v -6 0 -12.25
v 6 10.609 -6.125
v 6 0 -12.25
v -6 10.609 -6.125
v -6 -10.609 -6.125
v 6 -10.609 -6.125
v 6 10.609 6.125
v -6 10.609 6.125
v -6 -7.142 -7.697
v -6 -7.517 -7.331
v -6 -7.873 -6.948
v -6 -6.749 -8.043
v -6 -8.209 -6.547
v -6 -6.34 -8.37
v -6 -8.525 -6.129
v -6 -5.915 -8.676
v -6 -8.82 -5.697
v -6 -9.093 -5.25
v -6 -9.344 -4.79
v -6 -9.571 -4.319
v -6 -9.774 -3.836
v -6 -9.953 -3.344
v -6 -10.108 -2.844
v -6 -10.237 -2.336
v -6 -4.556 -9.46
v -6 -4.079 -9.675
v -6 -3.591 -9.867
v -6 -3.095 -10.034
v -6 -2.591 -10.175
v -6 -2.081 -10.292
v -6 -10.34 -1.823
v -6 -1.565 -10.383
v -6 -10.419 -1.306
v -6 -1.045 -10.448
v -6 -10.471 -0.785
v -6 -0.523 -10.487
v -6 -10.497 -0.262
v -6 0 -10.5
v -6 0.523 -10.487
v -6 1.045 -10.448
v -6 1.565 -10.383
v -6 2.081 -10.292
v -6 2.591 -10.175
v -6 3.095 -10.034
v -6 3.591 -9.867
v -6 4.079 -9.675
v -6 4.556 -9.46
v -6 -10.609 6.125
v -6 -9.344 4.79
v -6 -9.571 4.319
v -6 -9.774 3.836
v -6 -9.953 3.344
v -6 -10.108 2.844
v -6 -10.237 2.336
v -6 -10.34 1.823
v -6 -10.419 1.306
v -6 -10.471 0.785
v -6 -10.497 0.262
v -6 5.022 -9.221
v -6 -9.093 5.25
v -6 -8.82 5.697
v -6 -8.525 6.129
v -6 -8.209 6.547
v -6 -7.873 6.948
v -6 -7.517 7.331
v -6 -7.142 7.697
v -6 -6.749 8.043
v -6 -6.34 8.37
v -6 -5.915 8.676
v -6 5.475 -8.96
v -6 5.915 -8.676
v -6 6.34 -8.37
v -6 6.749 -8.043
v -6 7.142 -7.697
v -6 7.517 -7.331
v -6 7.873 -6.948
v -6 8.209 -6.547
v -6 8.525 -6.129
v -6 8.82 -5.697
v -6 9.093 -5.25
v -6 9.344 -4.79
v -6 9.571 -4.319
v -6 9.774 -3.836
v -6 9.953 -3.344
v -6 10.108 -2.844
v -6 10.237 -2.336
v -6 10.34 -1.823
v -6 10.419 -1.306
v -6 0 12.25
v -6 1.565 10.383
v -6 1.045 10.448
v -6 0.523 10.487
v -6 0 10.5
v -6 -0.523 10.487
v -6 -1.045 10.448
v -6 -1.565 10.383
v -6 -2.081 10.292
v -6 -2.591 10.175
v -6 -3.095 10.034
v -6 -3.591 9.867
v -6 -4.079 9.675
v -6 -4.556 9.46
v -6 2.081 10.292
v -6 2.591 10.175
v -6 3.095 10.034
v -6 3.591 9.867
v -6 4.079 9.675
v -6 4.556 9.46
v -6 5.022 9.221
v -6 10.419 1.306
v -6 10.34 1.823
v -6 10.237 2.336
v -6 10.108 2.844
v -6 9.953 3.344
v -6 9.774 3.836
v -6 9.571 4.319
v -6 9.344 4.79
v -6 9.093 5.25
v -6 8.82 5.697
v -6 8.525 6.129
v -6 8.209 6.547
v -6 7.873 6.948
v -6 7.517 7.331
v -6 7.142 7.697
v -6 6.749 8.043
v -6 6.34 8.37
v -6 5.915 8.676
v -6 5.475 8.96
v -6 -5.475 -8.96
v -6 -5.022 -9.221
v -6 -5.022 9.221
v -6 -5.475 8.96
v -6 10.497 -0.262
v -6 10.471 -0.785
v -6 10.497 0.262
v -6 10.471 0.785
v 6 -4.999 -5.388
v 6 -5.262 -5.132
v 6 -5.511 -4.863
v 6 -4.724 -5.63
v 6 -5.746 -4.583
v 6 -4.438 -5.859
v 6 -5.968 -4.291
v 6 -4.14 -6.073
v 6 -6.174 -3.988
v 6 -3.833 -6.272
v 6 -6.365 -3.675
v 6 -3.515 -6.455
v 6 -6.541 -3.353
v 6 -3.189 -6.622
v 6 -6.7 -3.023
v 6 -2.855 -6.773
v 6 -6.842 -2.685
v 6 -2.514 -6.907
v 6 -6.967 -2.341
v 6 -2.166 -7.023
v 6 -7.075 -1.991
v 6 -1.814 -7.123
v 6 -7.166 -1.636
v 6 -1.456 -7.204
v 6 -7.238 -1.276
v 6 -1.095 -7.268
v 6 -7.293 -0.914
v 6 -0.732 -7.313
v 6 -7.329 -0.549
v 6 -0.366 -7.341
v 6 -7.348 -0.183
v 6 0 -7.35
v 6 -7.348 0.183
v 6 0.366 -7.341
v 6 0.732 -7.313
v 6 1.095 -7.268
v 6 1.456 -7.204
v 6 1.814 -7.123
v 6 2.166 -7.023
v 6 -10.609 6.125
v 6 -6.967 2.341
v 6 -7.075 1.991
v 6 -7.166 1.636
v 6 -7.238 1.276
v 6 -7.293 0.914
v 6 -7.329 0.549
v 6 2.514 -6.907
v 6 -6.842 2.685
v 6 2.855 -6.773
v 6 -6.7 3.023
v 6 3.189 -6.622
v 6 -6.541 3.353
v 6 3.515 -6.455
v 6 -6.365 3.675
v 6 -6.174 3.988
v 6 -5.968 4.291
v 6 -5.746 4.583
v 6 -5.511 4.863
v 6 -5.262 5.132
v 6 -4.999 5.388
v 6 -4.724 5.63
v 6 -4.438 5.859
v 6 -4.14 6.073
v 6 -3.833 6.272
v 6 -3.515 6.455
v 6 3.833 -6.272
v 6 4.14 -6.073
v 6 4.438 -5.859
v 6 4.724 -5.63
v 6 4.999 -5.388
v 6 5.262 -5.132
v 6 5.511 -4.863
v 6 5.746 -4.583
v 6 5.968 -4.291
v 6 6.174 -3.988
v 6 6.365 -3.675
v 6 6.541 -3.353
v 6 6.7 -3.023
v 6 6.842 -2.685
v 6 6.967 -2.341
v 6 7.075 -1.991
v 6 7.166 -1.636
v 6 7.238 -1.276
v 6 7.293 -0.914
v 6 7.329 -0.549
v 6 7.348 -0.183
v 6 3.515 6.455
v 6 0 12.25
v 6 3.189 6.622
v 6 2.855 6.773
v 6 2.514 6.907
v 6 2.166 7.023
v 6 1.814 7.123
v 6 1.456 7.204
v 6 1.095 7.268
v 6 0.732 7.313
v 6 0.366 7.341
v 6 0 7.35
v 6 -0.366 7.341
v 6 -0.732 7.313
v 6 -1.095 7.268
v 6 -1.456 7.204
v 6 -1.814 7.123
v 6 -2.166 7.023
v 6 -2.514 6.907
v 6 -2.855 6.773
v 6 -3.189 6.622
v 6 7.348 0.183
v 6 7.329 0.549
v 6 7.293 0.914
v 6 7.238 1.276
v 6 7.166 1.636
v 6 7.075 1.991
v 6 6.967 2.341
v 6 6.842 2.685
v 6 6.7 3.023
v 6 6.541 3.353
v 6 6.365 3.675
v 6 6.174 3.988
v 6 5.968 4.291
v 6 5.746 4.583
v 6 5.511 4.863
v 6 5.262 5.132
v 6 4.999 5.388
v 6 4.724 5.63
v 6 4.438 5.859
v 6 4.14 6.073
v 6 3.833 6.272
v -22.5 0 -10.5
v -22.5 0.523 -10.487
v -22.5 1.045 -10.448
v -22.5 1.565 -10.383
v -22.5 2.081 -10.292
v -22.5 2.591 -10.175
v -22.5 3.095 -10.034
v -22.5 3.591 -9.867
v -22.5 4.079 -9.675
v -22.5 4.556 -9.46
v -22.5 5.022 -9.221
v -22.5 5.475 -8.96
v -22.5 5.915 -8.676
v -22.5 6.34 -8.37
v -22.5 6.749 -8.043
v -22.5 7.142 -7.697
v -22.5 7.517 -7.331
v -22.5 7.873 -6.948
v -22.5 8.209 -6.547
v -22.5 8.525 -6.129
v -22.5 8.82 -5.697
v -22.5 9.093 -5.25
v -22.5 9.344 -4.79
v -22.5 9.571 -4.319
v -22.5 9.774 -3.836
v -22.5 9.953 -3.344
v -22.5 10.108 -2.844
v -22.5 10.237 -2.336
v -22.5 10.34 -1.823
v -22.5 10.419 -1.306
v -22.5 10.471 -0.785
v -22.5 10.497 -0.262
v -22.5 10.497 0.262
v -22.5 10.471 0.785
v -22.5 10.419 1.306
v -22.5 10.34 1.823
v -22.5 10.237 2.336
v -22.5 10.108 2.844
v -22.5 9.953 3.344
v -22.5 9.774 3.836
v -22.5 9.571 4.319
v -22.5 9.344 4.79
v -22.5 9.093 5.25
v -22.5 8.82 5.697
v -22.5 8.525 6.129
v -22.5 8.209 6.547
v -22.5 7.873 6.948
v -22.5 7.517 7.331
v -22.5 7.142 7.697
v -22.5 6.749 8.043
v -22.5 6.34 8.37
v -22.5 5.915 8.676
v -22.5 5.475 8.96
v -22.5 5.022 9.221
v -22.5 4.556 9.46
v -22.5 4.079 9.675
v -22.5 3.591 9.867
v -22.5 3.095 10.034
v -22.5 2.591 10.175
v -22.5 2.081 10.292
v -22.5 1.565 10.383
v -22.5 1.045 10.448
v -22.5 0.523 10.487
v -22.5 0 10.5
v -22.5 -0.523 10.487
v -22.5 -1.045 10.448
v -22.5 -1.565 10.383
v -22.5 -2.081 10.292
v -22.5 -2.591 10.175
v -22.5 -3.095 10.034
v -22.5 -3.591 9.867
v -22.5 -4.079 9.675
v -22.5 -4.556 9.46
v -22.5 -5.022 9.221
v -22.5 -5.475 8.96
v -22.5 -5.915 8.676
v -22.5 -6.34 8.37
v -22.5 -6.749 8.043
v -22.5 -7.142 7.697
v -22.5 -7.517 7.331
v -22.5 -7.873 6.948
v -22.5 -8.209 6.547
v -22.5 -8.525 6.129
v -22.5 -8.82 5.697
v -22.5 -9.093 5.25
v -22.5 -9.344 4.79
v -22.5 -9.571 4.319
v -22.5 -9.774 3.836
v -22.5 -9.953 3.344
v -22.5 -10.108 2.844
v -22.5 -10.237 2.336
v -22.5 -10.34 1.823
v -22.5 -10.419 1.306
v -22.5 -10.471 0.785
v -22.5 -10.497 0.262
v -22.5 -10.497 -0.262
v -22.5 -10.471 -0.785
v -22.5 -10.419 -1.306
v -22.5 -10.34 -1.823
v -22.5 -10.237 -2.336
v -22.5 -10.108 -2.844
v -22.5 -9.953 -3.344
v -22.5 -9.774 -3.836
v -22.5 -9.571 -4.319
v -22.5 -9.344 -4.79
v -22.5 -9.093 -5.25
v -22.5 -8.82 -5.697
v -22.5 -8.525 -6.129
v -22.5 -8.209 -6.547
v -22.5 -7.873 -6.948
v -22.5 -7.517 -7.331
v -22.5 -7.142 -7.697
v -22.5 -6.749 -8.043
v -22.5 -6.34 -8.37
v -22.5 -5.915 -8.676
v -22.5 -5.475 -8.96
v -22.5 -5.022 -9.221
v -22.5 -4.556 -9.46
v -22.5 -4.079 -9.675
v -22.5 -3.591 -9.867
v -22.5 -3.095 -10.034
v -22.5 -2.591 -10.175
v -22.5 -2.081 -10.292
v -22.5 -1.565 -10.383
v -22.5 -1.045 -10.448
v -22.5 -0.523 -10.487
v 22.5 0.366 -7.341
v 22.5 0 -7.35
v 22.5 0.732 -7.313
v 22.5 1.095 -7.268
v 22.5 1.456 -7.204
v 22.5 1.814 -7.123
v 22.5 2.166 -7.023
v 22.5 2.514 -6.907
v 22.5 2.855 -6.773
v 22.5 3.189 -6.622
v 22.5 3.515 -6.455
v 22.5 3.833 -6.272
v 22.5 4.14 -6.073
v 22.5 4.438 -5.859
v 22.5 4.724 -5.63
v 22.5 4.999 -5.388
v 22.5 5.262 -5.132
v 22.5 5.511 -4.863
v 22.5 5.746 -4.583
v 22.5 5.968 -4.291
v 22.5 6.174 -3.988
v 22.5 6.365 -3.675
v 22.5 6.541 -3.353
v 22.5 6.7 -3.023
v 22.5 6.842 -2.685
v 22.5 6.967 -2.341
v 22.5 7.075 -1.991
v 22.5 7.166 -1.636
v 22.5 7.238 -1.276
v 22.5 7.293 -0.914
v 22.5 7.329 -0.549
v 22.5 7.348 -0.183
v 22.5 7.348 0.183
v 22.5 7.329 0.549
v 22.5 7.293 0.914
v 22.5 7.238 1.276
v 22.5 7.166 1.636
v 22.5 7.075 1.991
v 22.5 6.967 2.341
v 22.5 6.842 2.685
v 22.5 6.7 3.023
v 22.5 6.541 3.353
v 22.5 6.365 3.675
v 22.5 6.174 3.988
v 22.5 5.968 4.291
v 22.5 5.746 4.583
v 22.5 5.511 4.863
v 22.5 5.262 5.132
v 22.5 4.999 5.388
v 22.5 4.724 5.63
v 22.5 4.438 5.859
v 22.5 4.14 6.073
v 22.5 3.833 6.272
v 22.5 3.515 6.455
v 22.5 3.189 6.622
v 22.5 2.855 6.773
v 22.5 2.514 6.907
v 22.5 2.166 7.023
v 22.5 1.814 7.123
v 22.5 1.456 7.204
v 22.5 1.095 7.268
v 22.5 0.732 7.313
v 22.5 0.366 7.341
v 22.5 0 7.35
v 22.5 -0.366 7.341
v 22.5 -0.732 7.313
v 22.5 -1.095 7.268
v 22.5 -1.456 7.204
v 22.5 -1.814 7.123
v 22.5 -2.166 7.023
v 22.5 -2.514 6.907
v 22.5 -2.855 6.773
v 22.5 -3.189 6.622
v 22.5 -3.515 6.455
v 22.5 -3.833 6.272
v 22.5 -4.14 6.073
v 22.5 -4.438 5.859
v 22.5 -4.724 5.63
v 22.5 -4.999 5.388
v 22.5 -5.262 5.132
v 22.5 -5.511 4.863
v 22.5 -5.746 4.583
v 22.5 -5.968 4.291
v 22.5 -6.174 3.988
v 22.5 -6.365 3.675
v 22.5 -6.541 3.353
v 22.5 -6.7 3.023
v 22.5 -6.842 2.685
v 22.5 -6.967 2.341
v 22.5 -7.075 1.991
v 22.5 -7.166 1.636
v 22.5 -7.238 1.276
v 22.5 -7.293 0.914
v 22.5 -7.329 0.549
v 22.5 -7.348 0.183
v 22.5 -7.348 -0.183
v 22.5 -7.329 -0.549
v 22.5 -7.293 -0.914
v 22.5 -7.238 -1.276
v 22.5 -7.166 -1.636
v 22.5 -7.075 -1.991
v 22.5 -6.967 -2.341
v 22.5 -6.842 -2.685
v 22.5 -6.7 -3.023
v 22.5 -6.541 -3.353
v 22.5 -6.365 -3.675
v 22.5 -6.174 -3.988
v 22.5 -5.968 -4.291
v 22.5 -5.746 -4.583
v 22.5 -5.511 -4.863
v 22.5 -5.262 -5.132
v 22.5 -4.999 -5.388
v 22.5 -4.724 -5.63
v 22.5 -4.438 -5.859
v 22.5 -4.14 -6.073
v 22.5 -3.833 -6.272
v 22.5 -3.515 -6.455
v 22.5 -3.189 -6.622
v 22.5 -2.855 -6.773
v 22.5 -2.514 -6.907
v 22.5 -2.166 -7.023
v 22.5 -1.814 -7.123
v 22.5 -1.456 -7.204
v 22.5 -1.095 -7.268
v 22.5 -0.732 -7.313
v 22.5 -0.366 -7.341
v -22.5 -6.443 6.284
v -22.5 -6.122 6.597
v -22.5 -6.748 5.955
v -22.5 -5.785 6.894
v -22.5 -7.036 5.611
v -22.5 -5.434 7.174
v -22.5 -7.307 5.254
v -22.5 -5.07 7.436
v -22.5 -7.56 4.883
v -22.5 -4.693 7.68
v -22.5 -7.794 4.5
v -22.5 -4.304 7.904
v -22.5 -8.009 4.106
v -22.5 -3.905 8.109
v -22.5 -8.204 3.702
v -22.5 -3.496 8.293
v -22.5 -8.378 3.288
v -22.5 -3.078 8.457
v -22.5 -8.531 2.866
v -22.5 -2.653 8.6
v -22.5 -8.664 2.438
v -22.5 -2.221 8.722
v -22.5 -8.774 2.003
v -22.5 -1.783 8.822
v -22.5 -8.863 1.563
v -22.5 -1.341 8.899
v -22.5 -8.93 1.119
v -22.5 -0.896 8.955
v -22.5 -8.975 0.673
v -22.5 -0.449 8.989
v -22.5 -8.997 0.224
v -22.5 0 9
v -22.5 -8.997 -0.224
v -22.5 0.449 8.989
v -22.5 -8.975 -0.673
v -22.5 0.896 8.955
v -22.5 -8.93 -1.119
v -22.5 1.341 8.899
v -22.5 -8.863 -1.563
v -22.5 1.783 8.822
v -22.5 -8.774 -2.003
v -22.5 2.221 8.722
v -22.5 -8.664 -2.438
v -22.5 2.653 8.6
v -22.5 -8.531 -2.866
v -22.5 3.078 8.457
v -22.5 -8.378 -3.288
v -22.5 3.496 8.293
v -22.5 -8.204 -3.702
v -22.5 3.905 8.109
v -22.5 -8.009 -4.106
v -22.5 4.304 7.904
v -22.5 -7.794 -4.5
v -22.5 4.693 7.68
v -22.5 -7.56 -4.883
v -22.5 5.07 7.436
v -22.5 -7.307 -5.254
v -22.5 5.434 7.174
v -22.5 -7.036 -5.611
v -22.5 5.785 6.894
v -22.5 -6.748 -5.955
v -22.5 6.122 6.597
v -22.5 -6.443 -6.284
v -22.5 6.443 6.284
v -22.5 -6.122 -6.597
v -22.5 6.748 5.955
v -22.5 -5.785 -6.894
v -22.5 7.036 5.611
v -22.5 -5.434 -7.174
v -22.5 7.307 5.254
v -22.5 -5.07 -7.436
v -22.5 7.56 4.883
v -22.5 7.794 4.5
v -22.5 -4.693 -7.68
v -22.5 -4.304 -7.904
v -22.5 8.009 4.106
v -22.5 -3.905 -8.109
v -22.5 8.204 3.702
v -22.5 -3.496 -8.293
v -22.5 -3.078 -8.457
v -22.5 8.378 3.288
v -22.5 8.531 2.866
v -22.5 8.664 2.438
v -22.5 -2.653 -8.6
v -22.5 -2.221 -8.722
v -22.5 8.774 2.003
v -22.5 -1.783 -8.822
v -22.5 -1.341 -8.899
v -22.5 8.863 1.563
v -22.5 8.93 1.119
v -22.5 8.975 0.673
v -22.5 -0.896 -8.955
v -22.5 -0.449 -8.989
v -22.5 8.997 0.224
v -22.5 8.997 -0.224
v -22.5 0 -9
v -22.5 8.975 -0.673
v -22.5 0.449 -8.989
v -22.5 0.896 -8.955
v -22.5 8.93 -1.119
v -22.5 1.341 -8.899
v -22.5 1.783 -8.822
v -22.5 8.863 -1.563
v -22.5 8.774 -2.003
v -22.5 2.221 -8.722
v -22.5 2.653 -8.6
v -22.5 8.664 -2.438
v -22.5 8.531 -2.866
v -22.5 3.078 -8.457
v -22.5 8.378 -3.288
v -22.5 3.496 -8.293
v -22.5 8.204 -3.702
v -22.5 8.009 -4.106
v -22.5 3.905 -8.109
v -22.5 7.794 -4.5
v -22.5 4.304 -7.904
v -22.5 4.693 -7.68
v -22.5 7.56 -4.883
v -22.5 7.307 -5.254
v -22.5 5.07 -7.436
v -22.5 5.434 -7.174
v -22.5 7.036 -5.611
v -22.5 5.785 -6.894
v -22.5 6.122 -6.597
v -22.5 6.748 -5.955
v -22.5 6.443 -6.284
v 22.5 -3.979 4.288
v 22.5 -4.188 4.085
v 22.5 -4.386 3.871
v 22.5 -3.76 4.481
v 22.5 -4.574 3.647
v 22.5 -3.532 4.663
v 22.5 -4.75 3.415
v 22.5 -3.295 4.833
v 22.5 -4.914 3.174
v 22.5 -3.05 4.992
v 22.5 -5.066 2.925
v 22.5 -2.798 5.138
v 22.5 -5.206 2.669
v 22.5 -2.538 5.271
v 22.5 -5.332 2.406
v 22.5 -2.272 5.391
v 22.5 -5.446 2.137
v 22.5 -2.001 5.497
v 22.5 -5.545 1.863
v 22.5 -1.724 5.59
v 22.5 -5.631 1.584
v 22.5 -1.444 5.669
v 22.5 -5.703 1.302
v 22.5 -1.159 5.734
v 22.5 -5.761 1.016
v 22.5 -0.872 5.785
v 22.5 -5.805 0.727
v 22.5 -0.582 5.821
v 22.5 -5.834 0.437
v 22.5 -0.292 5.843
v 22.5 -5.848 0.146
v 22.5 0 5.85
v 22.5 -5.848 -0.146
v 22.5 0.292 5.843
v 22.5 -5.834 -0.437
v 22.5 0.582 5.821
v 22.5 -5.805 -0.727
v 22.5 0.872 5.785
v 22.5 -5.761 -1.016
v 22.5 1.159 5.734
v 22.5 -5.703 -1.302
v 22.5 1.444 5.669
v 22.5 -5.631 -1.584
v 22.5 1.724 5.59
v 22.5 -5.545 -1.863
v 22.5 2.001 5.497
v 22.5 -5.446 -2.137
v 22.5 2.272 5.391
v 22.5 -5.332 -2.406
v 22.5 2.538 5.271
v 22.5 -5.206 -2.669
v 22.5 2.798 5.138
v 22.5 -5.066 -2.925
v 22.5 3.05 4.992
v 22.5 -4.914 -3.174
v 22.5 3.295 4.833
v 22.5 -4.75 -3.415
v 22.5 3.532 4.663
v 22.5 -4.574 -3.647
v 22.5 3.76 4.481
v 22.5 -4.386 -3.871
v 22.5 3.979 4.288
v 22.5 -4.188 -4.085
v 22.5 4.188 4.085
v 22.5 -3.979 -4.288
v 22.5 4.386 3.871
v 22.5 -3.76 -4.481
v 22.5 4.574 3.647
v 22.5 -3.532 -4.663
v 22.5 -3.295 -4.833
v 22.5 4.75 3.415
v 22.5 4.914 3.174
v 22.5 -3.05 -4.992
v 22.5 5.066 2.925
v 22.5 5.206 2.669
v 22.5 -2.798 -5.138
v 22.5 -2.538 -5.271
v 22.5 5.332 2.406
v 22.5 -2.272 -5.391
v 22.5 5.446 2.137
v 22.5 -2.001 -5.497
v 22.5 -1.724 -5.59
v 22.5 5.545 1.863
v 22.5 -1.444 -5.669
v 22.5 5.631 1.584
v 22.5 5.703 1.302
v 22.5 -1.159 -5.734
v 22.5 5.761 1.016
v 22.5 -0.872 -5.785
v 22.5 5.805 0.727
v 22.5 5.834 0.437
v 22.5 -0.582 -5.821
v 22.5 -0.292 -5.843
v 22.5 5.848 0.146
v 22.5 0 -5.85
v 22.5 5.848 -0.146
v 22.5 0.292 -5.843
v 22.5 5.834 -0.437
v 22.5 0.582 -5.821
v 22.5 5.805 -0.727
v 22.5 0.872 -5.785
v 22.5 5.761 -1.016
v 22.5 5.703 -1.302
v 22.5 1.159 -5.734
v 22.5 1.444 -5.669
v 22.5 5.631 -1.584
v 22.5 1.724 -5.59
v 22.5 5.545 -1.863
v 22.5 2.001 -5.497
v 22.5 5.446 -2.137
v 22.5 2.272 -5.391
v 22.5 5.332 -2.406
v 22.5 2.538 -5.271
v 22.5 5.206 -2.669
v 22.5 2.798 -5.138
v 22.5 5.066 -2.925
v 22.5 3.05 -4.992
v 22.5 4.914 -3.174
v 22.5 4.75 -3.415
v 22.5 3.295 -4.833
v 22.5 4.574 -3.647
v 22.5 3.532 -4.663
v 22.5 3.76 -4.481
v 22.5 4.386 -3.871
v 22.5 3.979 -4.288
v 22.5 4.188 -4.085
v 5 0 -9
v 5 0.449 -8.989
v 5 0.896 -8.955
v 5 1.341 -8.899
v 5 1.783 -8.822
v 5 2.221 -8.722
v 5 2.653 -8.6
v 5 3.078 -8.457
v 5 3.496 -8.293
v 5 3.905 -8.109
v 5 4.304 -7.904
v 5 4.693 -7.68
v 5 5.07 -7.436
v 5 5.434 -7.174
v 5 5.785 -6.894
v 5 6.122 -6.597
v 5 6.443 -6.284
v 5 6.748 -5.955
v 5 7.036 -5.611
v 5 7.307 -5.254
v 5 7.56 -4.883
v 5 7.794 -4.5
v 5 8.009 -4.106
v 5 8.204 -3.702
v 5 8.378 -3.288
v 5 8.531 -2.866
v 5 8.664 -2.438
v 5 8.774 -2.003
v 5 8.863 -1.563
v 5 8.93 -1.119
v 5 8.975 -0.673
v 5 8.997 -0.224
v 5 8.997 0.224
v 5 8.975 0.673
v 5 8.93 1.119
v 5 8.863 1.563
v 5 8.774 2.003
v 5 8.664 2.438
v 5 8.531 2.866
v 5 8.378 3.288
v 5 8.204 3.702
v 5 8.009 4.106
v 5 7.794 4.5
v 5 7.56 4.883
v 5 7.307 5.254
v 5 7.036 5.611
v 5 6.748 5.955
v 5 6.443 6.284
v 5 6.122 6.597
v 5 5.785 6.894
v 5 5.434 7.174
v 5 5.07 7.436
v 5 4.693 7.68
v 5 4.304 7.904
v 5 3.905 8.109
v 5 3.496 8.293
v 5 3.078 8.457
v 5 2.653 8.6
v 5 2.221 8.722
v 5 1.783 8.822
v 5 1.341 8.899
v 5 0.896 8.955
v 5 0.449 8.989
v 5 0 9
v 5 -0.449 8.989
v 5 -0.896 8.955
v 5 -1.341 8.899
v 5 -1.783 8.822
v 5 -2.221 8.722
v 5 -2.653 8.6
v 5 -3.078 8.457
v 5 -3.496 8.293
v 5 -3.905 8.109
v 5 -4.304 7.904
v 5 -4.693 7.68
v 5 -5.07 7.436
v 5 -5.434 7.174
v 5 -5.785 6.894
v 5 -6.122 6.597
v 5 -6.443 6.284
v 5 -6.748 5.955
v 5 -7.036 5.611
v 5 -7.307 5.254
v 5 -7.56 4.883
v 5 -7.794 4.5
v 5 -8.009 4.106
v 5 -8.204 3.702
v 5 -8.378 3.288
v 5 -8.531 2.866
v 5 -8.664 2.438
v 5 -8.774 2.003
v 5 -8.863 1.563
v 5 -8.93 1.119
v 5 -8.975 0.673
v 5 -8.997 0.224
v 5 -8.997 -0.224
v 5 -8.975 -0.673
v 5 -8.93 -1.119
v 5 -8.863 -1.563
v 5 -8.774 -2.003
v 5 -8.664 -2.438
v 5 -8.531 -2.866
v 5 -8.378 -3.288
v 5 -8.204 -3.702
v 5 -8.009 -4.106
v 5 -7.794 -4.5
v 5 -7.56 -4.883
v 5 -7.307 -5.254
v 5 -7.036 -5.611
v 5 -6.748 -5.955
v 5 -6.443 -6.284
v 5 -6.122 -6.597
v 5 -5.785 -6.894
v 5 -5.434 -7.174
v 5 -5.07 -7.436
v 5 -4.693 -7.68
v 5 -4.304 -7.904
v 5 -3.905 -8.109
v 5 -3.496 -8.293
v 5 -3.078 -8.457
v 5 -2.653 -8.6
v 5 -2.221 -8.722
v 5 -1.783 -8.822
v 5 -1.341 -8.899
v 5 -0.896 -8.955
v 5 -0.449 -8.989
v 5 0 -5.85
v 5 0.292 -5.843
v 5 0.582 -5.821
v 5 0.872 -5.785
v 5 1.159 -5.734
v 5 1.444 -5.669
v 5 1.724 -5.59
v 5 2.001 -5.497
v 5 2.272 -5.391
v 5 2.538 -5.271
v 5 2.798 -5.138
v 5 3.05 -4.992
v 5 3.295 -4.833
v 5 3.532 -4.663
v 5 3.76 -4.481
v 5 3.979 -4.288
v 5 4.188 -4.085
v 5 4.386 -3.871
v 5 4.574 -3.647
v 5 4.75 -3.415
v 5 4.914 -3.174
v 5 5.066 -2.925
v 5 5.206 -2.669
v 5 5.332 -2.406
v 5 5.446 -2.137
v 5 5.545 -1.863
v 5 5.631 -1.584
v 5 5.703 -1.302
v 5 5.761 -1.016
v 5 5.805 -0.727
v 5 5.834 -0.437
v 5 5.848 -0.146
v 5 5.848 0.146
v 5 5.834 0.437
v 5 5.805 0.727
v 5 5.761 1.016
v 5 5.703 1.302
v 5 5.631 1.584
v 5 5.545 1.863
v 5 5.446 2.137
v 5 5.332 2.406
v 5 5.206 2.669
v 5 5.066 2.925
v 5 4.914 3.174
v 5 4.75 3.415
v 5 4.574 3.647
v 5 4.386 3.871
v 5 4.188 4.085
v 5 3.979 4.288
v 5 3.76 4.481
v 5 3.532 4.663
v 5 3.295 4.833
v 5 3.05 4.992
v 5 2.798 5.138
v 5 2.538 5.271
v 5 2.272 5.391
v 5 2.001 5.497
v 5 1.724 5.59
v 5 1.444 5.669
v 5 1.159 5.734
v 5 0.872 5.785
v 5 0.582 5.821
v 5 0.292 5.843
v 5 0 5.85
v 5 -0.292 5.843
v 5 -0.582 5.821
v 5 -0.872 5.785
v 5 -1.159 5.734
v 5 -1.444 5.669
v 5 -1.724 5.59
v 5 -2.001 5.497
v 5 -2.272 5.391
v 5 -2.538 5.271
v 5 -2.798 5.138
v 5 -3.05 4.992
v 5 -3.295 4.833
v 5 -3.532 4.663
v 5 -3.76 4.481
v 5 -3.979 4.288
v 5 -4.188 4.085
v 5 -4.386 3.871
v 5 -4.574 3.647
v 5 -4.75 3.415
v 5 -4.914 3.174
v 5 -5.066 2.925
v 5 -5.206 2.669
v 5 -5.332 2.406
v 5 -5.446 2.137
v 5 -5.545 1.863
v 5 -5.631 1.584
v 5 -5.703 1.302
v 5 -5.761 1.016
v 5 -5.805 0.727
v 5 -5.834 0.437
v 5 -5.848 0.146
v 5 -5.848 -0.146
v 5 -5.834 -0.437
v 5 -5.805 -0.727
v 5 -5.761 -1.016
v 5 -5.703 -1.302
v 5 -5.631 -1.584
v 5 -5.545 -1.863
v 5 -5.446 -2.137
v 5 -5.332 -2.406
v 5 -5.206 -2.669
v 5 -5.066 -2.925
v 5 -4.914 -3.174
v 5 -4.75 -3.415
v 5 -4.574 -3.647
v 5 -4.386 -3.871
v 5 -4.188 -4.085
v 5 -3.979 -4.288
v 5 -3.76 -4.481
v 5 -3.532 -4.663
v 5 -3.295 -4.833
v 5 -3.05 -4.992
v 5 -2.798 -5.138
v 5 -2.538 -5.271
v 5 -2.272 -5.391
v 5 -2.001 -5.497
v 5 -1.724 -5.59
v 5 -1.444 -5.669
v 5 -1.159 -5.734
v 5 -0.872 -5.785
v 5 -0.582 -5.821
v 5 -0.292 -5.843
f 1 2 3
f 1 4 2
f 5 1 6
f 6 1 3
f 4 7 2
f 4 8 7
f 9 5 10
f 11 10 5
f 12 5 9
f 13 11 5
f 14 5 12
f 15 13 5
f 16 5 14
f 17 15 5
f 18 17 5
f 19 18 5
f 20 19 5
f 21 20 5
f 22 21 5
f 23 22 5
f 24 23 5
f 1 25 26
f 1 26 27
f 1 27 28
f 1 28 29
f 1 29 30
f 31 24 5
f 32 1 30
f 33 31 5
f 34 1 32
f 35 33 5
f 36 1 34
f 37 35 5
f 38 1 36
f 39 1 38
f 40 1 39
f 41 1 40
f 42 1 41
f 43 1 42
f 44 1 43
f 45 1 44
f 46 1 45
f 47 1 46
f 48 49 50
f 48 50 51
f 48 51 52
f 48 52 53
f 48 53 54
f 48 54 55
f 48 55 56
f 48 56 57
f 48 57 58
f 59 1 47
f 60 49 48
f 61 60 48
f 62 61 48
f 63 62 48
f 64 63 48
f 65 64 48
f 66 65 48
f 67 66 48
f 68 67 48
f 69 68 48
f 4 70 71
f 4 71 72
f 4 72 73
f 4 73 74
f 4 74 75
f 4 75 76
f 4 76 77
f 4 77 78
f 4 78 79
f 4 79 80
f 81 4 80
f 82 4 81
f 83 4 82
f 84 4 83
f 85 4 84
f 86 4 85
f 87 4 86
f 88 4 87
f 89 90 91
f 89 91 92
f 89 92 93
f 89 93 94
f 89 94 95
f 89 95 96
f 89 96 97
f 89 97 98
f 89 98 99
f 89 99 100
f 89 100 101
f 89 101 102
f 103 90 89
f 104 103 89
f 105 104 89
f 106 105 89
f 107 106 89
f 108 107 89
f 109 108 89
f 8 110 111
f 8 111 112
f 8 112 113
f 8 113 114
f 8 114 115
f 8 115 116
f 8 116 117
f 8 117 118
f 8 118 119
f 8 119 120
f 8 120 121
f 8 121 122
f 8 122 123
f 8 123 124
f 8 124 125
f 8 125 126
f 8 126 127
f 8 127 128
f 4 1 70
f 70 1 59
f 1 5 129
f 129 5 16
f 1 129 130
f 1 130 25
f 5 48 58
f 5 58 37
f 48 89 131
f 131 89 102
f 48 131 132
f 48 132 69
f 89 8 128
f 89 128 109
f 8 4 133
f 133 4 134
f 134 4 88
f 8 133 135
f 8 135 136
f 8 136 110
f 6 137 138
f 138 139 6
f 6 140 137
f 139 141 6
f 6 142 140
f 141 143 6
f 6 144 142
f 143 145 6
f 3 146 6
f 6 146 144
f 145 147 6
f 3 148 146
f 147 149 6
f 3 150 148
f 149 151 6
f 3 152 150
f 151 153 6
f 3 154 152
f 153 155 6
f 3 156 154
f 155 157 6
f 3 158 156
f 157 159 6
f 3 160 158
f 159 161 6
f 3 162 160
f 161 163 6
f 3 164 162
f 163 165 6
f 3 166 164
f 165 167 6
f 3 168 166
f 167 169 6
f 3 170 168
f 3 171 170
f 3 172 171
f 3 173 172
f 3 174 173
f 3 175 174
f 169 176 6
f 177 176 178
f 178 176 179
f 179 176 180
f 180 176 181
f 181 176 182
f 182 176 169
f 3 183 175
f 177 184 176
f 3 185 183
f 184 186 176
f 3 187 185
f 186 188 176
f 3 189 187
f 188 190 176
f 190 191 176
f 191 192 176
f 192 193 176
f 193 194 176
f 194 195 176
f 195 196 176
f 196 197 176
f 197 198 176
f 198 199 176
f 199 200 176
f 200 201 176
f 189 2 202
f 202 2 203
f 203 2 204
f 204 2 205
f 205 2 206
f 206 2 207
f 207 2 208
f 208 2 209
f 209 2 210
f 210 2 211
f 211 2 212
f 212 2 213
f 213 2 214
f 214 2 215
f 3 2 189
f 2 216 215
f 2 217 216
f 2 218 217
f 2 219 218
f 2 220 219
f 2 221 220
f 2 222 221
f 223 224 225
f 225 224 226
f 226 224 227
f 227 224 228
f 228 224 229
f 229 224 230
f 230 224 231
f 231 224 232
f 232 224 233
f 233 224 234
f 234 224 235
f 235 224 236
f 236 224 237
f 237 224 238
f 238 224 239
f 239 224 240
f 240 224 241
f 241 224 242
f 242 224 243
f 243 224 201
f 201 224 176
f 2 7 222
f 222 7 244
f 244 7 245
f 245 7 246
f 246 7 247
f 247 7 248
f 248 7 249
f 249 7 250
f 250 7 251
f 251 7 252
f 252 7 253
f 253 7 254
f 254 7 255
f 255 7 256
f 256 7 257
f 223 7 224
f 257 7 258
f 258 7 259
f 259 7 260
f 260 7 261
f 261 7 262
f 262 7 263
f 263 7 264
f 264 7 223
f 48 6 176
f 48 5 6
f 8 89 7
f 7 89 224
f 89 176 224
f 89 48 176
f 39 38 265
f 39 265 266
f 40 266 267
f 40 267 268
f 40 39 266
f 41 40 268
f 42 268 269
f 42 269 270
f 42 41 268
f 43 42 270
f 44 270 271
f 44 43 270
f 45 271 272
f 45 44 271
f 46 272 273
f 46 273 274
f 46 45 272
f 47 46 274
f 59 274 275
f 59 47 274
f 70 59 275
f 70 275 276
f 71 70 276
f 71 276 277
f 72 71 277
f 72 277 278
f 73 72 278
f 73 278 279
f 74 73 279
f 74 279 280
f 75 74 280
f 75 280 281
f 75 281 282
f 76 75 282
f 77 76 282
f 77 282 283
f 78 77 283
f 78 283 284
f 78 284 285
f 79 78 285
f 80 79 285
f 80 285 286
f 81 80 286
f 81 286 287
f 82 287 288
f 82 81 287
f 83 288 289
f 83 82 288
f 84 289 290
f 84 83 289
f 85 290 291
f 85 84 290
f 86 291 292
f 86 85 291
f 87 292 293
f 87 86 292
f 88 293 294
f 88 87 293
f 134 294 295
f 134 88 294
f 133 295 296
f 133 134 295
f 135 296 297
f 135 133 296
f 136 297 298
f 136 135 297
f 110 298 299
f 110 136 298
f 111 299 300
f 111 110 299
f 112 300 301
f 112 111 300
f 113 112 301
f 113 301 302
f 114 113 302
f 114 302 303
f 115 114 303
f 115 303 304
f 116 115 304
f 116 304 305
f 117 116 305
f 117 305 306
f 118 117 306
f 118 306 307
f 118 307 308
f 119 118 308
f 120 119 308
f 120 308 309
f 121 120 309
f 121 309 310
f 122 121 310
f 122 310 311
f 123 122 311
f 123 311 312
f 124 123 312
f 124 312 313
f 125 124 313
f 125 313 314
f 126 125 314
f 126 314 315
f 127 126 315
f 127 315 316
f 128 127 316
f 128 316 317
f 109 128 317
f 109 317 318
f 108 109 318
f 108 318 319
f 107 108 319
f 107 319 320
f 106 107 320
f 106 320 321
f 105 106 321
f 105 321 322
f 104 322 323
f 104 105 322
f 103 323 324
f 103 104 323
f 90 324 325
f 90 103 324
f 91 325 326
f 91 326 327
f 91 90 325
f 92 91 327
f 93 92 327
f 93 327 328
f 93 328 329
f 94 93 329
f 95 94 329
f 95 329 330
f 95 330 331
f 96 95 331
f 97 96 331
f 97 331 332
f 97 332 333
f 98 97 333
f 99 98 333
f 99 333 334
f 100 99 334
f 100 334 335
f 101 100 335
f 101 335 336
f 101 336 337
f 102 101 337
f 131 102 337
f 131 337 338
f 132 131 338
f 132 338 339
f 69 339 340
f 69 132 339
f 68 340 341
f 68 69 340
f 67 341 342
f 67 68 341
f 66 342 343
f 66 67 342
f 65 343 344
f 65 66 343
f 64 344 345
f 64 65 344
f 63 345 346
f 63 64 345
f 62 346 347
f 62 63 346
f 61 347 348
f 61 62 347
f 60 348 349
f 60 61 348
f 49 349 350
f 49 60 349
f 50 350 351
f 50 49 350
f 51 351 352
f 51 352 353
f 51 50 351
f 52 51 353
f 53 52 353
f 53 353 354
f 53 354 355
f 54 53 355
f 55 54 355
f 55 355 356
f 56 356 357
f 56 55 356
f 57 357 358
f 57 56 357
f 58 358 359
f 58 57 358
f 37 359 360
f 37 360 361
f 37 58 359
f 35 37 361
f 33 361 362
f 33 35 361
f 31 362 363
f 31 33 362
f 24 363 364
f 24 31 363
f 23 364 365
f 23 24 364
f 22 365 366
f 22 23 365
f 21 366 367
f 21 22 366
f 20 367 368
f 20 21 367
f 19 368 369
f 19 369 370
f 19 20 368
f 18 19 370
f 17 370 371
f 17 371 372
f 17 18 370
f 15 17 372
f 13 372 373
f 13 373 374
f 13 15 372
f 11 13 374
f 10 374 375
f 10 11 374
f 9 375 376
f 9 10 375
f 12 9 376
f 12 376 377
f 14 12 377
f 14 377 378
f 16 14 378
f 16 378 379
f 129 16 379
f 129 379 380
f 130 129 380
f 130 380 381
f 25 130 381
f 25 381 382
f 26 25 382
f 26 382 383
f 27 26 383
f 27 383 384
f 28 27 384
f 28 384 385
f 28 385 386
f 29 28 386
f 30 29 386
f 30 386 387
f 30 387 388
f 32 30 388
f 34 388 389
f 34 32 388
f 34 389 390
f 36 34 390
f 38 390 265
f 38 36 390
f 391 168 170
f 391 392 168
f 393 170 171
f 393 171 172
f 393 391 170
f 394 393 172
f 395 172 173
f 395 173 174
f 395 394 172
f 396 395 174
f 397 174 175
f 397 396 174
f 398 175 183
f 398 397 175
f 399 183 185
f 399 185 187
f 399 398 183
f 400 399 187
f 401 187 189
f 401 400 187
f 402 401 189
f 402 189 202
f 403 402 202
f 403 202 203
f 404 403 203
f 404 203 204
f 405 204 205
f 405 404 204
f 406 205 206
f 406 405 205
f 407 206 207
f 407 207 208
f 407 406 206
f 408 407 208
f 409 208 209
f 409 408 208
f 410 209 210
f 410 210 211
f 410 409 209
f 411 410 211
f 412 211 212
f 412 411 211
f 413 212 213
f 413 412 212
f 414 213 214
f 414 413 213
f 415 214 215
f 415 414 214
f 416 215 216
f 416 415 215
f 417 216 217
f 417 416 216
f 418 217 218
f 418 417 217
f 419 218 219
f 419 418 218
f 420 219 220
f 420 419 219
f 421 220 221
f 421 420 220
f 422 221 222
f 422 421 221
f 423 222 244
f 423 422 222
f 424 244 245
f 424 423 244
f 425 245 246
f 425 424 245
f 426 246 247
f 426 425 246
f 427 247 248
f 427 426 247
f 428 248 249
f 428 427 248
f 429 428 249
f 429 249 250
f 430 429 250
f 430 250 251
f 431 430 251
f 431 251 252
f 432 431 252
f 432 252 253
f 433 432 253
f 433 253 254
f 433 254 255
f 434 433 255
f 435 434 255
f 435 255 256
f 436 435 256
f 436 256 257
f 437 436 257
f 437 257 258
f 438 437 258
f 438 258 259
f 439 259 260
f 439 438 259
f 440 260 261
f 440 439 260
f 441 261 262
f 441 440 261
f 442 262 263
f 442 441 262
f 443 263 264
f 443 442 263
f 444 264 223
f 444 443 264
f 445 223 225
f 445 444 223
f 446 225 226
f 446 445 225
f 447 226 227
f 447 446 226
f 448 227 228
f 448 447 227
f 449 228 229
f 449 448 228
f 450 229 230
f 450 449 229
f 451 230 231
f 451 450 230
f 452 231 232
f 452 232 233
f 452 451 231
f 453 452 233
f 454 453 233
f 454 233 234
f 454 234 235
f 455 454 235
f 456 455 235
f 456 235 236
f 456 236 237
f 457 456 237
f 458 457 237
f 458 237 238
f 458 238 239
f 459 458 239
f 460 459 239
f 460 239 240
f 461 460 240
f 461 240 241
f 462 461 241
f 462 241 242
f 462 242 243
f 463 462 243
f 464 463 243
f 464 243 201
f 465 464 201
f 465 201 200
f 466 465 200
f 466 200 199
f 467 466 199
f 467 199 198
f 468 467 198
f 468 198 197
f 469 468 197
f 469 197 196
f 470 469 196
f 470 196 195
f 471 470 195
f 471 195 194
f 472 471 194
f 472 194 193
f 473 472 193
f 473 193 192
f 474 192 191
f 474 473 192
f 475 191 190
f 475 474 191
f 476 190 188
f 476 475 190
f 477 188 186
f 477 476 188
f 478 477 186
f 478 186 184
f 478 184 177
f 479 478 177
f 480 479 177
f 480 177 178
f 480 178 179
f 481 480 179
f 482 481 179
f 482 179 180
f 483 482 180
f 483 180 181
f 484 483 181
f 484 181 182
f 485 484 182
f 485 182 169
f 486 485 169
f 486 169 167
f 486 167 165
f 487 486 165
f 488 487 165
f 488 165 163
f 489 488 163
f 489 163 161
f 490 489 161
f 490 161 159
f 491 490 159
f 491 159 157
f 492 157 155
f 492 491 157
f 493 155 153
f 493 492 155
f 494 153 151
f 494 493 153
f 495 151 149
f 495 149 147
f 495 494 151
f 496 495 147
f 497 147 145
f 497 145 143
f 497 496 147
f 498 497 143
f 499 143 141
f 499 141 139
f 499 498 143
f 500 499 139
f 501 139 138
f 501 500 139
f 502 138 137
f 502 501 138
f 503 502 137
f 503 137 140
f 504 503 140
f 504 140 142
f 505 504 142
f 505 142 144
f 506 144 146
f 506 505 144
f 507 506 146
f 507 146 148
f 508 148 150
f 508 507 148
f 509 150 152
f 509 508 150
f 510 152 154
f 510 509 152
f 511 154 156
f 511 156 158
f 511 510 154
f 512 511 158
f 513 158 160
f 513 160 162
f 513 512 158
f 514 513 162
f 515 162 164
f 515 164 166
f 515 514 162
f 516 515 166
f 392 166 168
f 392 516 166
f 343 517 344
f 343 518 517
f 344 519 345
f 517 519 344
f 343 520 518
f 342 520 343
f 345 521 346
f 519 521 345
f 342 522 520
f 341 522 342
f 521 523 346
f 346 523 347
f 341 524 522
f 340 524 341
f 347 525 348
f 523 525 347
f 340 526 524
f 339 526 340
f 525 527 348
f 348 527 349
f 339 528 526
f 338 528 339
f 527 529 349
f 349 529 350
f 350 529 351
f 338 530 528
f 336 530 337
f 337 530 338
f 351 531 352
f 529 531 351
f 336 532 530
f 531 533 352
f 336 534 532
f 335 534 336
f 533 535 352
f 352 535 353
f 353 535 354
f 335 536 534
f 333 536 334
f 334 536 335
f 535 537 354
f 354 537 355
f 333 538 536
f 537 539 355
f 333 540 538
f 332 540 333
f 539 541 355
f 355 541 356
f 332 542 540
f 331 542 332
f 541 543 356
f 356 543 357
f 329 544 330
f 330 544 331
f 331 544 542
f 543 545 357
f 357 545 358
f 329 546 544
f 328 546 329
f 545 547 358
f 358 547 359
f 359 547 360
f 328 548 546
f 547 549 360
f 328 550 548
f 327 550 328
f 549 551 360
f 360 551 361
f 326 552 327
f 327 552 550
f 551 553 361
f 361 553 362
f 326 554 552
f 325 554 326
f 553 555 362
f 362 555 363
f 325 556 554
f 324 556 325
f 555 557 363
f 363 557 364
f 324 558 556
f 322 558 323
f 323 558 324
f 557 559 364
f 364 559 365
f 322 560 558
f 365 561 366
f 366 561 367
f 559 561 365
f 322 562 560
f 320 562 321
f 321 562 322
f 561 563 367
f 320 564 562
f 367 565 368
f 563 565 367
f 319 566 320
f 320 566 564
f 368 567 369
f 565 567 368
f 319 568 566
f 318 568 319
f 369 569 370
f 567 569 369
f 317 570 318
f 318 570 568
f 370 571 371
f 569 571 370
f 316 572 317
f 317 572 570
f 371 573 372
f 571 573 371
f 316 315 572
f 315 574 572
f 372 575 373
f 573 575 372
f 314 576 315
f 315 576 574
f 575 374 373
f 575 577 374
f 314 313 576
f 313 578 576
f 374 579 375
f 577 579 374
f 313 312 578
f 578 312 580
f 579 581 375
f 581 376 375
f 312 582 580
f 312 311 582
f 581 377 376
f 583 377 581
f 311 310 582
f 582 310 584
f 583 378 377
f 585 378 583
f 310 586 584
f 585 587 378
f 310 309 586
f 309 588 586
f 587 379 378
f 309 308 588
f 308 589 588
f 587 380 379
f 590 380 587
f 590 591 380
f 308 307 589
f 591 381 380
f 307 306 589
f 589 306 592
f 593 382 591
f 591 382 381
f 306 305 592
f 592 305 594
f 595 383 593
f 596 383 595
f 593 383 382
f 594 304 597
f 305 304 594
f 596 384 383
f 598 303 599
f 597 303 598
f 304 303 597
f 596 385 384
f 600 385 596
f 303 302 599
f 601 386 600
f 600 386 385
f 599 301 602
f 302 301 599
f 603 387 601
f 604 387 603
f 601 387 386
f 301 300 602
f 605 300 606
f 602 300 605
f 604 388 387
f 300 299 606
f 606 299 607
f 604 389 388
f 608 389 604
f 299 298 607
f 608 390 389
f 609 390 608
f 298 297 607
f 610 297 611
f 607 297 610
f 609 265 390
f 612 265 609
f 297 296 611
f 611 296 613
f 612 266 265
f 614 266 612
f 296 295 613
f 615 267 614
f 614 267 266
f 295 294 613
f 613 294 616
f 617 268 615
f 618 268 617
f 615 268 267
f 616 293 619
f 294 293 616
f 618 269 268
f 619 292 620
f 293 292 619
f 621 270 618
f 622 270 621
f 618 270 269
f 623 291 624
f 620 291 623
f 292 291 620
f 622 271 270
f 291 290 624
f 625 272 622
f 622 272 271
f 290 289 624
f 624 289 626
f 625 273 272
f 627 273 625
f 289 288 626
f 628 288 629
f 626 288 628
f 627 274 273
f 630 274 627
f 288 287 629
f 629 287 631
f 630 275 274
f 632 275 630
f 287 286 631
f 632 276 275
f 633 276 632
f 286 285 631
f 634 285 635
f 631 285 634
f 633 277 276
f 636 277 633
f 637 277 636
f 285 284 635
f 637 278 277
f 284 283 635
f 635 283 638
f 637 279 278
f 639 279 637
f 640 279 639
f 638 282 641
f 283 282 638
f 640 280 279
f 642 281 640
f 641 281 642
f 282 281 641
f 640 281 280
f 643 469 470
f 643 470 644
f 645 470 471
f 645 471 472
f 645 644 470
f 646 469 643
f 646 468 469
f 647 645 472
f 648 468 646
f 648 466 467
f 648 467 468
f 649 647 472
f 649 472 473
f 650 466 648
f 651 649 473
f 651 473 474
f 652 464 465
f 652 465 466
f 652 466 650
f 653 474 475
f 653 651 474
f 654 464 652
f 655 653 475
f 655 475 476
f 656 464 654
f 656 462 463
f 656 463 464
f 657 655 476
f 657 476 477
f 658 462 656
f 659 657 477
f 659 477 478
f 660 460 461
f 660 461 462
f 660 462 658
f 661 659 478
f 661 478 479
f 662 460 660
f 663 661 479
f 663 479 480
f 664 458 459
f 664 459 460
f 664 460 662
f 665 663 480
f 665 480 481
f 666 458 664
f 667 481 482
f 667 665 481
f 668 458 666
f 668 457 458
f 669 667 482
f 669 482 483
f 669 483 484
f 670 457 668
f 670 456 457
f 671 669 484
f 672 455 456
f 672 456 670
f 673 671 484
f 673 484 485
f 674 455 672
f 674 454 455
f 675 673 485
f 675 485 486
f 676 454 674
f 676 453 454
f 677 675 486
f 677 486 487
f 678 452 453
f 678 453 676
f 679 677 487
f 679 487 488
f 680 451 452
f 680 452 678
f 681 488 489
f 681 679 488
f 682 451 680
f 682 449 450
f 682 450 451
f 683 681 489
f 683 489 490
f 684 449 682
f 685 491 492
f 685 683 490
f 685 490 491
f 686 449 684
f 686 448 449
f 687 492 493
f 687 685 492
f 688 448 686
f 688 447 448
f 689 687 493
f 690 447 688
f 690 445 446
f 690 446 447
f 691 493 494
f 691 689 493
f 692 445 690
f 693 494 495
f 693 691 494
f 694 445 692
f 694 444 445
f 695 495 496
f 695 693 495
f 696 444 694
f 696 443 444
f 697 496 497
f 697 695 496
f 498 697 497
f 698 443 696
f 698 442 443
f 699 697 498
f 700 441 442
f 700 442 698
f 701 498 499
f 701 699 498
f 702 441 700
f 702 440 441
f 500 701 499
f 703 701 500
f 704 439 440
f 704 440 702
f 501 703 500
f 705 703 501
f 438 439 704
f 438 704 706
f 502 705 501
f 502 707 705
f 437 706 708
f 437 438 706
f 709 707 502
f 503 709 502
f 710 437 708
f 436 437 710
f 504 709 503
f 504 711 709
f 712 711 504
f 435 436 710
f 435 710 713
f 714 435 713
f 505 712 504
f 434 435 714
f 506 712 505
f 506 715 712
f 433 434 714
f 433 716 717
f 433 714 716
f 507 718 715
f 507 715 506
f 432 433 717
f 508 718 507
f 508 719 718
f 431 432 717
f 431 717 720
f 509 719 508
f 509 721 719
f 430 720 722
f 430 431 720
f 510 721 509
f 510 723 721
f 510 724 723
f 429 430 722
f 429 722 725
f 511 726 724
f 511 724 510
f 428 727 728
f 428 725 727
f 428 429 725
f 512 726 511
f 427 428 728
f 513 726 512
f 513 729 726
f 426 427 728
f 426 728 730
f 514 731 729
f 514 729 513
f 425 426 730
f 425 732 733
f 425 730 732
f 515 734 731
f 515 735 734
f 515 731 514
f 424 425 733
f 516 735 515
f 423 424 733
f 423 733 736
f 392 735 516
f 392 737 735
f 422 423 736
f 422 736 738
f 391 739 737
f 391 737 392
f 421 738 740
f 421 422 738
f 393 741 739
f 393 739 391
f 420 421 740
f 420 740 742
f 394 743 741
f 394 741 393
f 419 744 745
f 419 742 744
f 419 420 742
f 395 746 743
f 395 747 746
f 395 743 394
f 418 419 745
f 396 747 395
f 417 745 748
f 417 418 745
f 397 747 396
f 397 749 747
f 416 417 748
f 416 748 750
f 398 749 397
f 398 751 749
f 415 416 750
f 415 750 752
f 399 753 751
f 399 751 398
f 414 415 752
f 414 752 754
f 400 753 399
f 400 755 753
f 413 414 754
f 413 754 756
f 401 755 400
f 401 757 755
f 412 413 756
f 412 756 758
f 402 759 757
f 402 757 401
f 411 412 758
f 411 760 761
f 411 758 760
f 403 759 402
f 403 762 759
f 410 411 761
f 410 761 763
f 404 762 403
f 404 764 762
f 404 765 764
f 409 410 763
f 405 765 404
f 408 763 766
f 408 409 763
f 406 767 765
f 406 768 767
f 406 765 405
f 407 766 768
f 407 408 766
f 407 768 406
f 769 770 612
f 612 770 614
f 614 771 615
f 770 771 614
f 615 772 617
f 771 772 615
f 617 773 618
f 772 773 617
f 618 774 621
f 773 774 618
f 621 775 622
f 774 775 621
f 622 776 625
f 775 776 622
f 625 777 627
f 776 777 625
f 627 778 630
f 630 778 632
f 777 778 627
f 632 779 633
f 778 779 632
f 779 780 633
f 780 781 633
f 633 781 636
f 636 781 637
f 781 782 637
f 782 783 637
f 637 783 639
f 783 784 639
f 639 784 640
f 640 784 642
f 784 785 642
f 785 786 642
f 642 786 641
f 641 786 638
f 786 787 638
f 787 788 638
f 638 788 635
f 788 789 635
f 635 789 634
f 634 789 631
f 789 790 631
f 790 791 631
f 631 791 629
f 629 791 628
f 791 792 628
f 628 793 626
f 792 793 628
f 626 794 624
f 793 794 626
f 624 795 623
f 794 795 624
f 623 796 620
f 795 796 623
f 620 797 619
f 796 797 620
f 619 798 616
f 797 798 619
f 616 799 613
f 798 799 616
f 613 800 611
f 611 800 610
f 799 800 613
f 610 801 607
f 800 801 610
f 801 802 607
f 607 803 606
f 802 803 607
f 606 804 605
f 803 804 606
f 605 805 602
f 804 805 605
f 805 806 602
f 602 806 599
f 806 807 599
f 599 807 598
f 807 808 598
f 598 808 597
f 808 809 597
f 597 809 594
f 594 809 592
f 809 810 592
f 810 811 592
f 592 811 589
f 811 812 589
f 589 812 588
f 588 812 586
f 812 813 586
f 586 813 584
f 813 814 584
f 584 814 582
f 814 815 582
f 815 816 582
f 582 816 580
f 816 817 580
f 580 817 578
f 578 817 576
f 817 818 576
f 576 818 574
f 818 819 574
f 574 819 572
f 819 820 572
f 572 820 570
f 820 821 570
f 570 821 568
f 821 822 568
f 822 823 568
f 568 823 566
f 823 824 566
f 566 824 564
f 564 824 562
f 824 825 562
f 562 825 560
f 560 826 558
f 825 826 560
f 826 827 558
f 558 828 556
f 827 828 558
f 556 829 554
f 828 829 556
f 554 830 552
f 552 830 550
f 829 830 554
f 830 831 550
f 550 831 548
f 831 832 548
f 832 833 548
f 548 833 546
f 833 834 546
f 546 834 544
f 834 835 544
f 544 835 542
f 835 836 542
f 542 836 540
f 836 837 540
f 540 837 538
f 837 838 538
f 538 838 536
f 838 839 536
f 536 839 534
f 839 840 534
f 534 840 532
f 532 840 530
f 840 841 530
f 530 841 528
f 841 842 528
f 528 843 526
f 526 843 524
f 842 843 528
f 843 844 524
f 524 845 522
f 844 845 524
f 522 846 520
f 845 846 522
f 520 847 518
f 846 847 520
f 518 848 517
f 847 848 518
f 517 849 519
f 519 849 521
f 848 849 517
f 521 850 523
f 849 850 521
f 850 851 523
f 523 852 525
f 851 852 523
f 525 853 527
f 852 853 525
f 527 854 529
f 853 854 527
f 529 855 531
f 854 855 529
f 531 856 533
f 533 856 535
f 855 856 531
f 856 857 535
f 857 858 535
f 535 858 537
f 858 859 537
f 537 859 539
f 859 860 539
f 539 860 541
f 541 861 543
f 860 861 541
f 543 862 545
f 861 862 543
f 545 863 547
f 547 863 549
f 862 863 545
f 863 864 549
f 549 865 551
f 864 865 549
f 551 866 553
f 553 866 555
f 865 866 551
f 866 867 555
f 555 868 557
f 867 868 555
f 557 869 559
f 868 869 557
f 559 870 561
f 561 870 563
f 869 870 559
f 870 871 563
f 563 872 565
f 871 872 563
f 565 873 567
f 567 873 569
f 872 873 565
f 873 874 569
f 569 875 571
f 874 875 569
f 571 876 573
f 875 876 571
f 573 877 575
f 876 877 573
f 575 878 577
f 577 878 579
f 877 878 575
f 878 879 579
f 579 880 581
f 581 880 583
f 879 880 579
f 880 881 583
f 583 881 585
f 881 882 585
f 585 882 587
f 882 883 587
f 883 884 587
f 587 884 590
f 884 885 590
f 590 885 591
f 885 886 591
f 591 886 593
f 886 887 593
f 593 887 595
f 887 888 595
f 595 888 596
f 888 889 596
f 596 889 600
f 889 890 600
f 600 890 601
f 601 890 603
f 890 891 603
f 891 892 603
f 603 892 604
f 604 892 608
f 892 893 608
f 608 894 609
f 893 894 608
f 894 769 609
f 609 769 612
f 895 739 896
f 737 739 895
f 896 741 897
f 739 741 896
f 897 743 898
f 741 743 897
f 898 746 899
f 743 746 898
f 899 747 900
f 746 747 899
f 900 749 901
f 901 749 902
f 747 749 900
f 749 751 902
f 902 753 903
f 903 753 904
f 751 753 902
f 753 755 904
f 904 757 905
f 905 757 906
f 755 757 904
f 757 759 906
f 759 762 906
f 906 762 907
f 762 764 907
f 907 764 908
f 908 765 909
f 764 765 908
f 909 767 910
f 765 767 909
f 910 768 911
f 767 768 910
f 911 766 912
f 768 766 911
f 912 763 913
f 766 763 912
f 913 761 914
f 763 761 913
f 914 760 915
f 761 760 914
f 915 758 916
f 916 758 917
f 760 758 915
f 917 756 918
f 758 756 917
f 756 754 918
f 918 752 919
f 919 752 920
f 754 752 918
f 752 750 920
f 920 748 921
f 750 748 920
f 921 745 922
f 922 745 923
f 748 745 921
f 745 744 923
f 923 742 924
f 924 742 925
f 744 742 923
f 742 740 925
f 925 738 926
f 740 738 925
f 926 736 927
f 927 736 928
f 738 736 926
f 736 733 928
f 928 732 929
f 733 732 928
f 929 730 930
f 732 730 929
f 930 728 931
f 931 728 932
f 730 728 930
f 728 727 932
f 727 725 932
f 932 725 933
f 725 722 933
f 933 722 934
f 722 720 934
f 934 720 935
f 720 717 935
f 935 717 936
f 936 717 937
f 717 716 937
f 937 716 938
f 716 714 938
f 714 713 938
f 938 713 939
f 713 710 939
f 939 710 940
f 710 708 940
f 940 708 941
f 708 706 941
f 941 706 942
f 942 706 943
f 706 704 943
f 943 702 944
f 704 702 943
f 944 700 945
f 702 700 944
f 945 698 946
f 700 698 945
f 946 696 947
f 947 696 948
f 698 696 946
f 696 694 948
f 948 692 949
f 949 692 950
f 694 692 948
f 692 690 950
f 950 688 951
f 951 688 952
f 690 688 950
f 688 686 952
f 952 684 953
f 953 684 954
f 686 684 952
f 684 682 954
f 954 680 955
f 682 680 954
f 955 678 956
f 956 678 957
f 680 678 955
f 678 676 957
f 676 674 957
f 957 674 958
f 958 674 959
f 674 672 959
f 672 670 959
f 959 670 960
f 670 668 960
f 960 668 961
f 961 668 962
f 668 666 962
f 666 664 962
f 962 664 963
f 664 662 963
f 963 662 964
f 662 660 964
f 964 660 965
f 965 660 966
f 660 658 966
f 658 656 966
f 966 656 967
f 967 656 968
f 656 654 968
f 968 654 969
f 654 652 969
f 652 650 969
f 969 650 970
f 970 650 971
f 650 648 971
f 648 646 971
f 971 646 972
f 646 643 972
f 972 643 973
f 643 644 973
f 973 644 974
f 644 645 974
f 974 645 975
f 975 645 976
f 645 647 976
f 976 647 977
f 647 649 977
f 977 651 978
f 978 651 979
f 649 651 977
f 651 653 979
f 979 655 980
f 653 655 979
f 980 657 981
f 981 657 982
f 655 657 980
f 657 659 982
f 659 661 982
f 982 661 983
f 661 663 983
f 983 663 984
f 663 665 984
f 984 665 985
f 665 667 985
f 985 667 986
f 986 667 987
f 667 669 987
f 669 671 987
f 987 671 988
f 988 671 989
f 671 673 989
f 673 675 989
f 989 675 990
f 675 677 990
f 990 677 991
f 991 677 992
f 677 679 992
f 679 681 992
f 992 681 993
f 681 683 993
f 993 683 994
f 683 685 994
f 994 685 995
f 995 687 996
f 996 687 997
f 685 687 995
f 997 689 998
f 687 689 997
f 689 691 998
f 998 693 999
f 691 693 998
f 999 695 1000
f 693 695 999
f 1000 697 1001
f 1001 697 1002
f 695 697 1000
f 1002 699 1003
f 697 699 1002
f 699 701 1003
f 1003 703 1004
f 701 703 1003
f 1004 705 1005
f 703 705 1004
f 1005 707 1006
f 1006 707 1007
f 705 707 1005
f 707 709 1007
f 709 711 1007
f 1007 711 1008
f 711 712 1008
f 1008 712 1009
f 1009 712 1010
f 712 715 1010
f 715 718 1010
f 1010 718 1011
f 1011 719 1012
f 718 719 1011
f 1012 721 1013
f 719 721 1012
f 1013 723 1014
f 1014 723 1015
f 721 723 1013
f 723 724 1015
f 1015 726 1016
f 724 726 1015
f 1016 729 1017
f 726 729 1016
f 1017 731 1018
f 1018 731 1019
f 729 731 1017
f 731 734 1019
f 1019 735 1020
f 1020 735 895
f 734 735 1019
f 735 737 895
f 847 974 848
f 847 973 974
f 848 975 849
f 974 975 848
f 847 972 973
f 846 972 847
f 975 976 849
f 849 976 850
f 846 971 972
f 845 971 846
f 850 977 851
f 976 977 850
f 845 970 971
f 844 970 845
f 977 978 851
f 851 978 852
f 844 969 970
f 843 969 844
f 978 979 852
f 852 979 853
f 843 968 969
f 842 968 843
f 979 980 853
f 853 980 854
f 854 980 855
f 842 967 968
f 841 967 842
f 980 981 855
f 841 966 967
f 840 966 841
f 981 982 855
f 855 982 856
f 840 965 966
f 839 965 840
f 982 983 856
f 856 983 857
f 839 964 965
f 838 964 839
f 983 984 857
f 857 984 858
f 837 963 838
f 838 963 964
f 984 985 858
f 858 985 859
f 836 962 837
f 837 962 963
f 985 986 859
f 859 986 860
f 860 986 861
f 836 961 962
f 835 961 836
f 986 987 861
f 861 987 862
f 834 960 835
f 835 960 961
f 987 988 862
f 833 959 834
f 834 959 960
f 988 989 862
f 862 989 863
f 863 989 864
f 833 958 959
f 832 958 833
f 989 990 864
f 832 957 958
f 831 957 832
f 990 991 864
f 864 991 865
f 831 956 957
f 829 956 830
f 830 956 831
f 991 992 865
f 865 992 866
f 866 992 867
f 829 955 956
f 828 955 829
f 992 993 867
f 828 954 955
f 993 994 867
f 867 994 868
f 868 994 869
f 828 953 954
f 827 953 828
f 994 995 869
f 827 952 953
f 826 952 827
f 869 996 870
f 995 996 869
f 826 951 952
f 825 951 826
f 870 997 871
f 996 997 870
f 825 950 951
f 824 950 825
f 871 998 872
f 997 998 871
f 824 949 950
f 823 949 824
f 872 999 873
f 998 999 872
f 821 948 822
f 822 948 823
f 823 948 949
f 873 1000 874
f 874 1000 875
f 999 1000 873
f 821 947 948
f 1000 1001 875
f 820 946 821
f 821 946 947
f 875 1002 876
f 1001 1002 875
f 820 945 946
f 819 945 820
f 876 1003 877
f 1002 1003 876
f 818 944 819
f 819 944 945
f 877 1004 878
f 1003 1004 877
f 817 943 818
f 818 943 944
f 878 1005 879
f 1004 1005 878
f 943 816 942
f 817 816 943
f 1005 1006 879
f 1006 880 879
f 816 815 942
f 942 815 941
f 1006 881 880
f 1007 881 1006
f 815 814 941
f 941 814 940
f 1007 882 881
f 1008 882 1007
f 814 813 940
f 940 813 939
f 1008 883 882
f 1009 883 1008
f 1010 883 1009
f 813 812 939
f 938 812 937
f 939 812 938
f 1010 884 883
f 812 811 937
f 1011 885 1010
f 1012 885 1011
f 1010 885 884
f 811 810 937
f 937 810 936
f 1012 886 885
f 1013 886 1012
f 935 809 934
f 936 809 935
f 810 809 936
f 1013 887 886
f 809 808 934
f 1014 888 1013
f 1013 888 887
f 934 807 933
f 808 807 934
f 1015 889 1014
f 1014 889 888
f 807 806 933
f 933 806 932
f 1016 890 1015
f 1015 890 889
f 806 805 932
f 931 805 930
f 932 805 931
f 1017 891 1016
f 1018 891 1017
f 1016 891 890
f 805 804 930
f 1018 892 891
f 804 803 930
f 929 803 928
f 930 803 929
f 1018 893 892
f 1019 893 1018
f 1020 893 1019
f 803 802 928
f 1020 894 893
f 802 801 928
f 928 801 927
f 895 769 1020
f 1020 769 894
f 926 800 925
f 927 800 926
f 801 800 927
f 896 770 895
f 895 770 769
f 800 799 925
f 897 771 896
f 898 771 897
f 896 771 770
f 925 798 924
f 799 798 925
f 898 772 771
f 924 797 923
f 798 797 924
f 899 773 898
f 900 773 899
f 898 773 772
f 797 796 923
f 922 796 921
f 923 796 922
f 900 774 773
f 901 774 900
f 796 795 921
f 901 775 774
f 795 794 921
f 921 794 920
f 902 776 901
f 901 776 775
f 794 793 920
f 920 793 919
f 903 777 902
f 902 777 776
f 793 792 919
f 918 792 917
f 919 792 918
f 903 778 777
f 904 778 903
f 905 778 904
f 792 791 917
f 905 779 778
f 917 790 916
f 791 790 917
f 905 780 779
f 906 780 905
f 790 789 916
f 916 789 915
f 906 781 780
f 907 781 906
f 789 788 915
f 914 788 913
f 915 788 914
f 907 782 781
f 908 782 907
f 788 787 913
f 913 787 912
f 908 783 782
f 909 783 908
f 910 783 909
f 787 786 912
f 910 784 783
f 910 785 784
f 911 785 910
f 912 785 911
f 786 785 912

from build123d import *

# Parameters (mm, degrees)
CYLINDER003_R          = 5.85
CYLINDER003_DEPTH      = 30
CYLINDER002_R          = 9
CYLINDER002_DEPTH      = 30
CYLINDER001_R          = 7.35
CYLINDER001_DEPTH      = 25
LINEAREXTRUDE_DEPTH    = 12
CYLINDER_R             = 10.5
CYLINDER_DEPTH         = 25
DIFFERENCE_PITCH_ANGLE = 90


with BuildPart() as cylinder003:
    # cylinder003 → cylinder003 (new body)
    with BuildSketch(Plane.XY.offset(-5)):
        Circle(CYLINDER003_R)
    extrude(amount=CYLINDER003_DEPTH)


with BuildPart() as group001:
    # cylinder002 → cylinder002 (new body)
    with BuildSketch(Plane.XY.offset(-25)):
        Circle(CYLINDER002_R)
    extrude(amount=CYLINDER002_DEPTH)

    # Group001: union cylinder003
    add(cylinder003.part)


with BuildPart() as cylinder001:
    # cylinder001 → cylinder001 (new body)
    with BuildSketch(Plane.XY.offset(-2.5)):
        Circle(CYLINDER001_R)
    extrude(amount=CYLINDER001_DEPTH)


with BuildPart() as linearextrude:
    # RefineLinearExtrude → LinearExtrude (new body)
    with BuildSketch(Plane(origin=(0, 0, 0), x_dir=(0, -1, 0), z_dir=(0, 0, -1))):
        Polygon((-10.608811, -6.125), (0, -12.25), (10.608811, -6.125), (10.608811, 6.125), (0, 12.25), (-10.608811, 6.125), align=None)
    extrude(amount=-LINEAREXTRUDE_DEPTH)


with BuildPart() as linearextrude_1:
    # LinearExtrude placement: moved
    add(linearextrude.part.moved(Location((0, 0, -6))))


with BuildPart() as difference:
    # cylinder → cylinder (new body)
    with BuildSketch(Plane.XY.offset(-22.5)):
        Circle(CYLINDER_R)
    extrude(amount=CYLINDER_DEPTH)

    # Group: union cylinder001, LinearExtrude
    add(cylinder001.part)
    add(linearextrude_1.part)

    # difference: cut Group001
    add(group001.part, mode=Mode.SUBTRACT)


with BuildPart() as difference_1:
    # difference pitch: moved
    add(difference.part.rotate(Axis((0, 0, 0), (0, 1, 0)), DIFFERENCE_PITCH_ANGLE))


with BuildPart() as difference_2:
    # difference placement: moved
    add(difference_1.part)


solid = difference_2.part
